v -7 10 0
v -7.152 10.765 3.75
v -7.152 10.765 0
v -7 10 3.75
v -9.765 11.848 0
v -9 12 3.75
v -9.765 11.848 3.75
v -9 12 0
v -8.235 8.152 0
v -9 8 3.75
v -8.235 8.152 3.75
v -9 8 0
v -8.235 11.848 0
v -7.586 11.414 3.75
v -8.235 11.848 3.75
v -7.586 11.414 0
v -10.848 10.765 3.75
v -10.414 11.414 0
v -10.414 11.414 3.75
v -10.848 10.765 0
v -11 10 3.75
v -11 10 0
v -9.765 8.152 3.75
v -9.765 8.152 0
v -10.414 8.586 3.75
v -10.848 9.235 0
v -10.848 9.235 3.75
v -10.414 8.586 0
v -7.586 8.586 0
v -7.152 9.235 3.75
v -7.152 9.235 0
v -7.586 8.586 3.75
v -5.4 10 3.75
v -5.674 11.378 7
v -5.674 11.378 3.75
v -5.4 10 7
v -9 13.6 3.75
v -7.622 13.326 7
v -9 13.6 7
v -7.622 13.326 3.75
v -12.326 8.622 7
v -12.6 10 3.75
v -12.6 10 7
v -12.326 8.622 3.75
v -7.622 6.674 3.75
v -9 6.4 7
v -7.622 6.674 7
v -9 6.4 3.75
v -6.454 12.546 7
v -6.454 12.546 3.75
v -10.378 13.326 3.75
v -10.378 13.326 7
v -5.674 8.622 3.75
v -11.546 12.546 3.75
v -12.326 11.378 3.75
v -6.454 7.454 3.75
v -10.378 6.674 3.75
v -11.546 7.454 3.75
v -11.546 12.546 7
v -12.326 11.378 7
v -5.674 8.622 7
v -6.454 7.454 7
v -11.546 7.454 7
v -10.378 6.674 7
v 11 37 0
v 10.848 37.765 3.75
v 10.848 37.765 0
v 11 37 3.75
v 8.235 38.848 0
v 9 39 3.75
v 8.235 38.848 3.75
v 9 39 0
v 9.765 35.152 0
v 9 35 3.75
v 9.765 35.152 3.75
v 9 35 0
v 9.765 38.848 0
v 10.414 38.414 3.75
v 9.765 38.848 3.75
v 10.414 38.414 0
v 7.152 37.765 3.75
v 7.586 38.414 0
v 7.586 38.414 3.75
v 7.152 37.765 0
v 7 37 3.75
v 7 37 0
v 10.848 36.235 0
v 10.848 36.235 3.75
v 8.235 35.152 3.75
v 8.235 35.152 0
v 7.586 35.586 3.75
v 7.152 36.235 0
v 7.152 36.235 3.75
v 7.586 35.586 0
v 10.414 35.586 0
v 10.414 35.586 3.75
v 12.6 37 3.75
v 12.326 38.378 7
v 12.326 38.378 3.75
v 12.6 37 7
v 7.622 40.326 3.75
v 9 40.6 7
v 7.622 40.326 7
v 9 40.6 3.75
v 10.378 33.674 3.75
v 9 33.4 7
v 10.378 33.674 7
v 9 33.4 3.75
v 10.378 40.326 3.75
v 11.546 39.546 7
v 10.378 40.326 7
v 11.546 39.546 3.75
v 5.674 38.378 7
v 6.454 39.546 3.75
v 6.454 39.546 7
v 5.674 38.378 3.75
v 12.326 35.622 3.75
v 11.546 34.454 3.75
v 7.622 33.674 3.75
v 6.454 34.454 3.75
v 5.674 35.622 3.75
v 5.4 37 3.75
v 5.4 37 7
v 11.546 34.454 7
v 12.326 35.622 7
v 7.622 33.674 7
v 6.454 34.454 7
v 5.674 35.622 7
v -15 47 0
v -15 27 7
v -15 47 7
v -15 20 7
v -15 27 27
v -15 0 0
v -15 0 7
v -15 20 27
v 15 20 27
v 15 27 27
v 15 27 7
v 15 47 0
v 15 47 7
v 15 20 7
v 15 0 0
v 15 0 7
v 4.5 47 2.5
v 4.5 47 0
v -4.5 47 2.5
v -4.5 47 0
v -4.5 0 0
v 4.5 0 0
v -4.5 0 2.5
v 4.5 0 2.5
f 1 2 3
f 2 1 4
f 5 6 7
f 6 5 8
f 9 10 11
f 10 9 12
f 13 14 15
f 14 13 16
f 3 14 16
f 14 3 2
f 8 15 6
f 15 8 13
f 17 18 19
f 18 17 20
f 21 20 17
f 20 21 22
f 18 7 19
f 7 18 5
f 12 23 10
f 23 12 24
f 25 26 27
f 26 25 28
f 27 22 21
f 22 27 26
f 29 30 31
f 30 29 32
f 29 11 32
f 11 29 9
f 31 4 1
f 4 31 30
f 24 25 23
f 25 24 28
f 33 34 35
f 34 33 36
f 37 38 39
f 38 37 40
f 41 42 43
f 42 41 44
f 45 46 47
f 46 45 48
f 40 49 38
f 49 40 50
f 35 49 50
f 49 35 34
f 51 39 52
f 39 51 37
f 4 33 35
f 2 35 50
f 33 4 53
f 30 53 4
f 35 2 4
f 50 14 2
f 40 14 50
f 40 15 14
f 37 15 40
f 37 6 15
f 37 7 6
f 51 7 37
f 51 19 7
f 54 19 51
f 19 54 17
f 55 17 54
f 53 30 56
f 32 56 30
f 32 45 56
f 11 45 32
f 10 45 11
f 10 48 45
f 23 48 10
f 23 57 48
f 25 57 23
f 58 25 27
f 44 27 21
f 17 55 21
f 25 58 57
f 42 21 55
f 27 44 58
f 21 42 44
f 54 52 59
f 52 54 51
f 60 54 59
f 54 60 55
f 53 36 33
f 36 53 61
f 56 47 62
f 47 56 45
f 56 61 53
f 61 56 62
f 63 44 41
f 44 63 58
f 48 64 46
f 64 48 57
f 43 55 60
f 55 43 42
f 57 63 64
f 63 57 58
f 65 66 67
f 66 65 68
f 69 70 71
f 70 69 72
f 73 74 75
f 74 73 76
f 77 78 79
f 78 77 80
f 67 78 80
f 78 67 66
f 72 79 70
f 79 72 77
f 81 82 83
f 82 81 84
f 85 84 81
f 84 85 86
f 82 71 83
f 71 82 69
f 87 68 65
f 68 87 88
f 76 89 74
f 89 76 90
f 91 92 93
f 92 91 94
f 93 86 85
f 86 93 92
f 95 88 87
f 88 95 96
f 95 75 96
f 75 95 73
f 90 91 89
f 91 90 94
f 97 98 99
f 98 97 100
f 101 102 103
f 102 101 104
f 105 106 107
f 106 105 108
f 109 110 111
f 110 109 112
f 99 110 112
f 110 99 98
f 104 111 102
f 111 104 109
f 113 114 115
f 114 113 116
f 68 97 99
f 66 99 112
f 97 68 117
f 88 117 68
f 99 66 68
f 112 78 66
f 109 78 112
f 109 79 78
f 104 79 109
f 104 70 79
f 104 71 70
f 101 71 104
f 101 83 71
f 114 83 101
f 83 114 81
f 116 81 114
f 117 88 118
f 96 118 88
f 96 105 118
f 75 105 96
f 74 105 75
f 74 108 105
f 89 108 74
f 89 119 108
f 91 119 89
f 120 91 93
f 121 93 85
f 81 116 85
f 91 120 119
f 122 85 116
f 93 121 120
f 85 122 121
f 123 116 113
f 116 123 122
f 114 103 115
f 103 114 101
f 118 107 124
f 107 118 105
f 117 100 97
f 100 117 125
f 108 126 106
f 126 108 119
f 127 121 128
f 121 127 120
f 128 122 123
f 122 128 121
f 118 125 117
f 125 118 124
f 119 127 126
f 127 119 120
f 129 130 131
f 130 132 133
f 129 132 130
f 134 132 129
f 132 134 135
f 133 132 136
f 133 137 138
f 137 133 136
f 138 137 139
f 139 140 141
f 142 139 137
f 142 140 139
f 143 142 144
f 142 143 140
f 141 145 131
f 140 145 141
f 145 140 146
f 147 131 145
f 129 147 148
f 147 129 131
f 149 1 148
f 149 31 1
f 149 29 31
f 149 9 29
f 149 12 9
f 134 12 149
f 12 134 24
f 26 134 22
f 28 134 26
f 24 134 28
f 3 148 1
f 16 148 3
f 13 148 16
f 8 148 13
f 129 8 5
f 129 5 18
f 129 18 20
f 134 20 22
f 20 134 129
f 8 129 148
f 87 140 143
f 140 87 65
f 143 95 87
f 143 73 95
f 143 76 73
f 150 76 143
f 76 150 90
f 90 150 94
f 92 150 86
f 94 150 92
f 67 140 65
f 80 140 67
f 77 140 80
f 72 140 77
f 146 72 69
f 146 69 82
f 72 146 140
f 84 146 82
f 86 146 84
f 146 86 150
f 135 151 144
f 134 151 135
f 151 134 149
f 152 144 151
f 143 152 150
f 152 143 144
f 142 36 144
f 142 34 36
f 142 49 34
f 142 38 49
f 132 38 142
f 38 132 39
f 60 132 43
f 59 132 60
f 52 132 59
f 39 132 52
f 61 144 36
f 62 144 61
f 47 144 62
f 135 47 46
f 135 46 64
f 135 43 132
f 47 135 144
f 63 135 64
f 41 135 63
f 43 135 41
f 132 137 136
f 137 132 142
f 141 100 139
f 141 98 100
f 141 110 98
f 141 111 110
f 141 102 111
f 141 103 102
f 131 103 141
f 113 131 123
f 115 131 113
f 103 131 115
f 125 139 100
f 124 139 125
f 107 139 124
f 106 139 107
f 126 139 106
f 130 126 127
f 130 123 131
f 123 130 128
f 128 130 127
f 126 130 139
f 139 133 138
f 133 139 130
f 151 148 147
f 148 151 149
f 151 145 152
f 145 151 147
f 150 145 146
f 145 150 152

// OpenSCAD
// Base is 49mm wide, 25mm deep
// Body is 39mm wide
// Tab is 16mm wide
// Locks are 6mm from back, 12mm from side, 10mm long

module screw (x, y)
{
  translate ([x, y, 0]) {
    cylinder (h=10, d=4.0, $fn=16, center=true);
  }
  translate ([x, y, 6]) {
    cylinder (h=4.5, d=7.2, $fn=16, center=true);
  }
}

translate ([-15, 0, 0]) {
  difference () {
     // Floor
    cube ([30, 47, 27]);

    // Remove cubes to create vertical
    translate ([0, 0, 7]) {
      cube ([30, 20, 27]);
    }
    translate ([0, 27, 7]) {
      cube ([30, 20, 27]);
    }
    
    // Tie-wrap
    translate ([10.5, 0, 0]) {
      cube ([9, 47, 2.5]);
    }
    
    //  Screw holes & head recesses
    screw (6, 10);
    screw (24, 37);
  } 
}
